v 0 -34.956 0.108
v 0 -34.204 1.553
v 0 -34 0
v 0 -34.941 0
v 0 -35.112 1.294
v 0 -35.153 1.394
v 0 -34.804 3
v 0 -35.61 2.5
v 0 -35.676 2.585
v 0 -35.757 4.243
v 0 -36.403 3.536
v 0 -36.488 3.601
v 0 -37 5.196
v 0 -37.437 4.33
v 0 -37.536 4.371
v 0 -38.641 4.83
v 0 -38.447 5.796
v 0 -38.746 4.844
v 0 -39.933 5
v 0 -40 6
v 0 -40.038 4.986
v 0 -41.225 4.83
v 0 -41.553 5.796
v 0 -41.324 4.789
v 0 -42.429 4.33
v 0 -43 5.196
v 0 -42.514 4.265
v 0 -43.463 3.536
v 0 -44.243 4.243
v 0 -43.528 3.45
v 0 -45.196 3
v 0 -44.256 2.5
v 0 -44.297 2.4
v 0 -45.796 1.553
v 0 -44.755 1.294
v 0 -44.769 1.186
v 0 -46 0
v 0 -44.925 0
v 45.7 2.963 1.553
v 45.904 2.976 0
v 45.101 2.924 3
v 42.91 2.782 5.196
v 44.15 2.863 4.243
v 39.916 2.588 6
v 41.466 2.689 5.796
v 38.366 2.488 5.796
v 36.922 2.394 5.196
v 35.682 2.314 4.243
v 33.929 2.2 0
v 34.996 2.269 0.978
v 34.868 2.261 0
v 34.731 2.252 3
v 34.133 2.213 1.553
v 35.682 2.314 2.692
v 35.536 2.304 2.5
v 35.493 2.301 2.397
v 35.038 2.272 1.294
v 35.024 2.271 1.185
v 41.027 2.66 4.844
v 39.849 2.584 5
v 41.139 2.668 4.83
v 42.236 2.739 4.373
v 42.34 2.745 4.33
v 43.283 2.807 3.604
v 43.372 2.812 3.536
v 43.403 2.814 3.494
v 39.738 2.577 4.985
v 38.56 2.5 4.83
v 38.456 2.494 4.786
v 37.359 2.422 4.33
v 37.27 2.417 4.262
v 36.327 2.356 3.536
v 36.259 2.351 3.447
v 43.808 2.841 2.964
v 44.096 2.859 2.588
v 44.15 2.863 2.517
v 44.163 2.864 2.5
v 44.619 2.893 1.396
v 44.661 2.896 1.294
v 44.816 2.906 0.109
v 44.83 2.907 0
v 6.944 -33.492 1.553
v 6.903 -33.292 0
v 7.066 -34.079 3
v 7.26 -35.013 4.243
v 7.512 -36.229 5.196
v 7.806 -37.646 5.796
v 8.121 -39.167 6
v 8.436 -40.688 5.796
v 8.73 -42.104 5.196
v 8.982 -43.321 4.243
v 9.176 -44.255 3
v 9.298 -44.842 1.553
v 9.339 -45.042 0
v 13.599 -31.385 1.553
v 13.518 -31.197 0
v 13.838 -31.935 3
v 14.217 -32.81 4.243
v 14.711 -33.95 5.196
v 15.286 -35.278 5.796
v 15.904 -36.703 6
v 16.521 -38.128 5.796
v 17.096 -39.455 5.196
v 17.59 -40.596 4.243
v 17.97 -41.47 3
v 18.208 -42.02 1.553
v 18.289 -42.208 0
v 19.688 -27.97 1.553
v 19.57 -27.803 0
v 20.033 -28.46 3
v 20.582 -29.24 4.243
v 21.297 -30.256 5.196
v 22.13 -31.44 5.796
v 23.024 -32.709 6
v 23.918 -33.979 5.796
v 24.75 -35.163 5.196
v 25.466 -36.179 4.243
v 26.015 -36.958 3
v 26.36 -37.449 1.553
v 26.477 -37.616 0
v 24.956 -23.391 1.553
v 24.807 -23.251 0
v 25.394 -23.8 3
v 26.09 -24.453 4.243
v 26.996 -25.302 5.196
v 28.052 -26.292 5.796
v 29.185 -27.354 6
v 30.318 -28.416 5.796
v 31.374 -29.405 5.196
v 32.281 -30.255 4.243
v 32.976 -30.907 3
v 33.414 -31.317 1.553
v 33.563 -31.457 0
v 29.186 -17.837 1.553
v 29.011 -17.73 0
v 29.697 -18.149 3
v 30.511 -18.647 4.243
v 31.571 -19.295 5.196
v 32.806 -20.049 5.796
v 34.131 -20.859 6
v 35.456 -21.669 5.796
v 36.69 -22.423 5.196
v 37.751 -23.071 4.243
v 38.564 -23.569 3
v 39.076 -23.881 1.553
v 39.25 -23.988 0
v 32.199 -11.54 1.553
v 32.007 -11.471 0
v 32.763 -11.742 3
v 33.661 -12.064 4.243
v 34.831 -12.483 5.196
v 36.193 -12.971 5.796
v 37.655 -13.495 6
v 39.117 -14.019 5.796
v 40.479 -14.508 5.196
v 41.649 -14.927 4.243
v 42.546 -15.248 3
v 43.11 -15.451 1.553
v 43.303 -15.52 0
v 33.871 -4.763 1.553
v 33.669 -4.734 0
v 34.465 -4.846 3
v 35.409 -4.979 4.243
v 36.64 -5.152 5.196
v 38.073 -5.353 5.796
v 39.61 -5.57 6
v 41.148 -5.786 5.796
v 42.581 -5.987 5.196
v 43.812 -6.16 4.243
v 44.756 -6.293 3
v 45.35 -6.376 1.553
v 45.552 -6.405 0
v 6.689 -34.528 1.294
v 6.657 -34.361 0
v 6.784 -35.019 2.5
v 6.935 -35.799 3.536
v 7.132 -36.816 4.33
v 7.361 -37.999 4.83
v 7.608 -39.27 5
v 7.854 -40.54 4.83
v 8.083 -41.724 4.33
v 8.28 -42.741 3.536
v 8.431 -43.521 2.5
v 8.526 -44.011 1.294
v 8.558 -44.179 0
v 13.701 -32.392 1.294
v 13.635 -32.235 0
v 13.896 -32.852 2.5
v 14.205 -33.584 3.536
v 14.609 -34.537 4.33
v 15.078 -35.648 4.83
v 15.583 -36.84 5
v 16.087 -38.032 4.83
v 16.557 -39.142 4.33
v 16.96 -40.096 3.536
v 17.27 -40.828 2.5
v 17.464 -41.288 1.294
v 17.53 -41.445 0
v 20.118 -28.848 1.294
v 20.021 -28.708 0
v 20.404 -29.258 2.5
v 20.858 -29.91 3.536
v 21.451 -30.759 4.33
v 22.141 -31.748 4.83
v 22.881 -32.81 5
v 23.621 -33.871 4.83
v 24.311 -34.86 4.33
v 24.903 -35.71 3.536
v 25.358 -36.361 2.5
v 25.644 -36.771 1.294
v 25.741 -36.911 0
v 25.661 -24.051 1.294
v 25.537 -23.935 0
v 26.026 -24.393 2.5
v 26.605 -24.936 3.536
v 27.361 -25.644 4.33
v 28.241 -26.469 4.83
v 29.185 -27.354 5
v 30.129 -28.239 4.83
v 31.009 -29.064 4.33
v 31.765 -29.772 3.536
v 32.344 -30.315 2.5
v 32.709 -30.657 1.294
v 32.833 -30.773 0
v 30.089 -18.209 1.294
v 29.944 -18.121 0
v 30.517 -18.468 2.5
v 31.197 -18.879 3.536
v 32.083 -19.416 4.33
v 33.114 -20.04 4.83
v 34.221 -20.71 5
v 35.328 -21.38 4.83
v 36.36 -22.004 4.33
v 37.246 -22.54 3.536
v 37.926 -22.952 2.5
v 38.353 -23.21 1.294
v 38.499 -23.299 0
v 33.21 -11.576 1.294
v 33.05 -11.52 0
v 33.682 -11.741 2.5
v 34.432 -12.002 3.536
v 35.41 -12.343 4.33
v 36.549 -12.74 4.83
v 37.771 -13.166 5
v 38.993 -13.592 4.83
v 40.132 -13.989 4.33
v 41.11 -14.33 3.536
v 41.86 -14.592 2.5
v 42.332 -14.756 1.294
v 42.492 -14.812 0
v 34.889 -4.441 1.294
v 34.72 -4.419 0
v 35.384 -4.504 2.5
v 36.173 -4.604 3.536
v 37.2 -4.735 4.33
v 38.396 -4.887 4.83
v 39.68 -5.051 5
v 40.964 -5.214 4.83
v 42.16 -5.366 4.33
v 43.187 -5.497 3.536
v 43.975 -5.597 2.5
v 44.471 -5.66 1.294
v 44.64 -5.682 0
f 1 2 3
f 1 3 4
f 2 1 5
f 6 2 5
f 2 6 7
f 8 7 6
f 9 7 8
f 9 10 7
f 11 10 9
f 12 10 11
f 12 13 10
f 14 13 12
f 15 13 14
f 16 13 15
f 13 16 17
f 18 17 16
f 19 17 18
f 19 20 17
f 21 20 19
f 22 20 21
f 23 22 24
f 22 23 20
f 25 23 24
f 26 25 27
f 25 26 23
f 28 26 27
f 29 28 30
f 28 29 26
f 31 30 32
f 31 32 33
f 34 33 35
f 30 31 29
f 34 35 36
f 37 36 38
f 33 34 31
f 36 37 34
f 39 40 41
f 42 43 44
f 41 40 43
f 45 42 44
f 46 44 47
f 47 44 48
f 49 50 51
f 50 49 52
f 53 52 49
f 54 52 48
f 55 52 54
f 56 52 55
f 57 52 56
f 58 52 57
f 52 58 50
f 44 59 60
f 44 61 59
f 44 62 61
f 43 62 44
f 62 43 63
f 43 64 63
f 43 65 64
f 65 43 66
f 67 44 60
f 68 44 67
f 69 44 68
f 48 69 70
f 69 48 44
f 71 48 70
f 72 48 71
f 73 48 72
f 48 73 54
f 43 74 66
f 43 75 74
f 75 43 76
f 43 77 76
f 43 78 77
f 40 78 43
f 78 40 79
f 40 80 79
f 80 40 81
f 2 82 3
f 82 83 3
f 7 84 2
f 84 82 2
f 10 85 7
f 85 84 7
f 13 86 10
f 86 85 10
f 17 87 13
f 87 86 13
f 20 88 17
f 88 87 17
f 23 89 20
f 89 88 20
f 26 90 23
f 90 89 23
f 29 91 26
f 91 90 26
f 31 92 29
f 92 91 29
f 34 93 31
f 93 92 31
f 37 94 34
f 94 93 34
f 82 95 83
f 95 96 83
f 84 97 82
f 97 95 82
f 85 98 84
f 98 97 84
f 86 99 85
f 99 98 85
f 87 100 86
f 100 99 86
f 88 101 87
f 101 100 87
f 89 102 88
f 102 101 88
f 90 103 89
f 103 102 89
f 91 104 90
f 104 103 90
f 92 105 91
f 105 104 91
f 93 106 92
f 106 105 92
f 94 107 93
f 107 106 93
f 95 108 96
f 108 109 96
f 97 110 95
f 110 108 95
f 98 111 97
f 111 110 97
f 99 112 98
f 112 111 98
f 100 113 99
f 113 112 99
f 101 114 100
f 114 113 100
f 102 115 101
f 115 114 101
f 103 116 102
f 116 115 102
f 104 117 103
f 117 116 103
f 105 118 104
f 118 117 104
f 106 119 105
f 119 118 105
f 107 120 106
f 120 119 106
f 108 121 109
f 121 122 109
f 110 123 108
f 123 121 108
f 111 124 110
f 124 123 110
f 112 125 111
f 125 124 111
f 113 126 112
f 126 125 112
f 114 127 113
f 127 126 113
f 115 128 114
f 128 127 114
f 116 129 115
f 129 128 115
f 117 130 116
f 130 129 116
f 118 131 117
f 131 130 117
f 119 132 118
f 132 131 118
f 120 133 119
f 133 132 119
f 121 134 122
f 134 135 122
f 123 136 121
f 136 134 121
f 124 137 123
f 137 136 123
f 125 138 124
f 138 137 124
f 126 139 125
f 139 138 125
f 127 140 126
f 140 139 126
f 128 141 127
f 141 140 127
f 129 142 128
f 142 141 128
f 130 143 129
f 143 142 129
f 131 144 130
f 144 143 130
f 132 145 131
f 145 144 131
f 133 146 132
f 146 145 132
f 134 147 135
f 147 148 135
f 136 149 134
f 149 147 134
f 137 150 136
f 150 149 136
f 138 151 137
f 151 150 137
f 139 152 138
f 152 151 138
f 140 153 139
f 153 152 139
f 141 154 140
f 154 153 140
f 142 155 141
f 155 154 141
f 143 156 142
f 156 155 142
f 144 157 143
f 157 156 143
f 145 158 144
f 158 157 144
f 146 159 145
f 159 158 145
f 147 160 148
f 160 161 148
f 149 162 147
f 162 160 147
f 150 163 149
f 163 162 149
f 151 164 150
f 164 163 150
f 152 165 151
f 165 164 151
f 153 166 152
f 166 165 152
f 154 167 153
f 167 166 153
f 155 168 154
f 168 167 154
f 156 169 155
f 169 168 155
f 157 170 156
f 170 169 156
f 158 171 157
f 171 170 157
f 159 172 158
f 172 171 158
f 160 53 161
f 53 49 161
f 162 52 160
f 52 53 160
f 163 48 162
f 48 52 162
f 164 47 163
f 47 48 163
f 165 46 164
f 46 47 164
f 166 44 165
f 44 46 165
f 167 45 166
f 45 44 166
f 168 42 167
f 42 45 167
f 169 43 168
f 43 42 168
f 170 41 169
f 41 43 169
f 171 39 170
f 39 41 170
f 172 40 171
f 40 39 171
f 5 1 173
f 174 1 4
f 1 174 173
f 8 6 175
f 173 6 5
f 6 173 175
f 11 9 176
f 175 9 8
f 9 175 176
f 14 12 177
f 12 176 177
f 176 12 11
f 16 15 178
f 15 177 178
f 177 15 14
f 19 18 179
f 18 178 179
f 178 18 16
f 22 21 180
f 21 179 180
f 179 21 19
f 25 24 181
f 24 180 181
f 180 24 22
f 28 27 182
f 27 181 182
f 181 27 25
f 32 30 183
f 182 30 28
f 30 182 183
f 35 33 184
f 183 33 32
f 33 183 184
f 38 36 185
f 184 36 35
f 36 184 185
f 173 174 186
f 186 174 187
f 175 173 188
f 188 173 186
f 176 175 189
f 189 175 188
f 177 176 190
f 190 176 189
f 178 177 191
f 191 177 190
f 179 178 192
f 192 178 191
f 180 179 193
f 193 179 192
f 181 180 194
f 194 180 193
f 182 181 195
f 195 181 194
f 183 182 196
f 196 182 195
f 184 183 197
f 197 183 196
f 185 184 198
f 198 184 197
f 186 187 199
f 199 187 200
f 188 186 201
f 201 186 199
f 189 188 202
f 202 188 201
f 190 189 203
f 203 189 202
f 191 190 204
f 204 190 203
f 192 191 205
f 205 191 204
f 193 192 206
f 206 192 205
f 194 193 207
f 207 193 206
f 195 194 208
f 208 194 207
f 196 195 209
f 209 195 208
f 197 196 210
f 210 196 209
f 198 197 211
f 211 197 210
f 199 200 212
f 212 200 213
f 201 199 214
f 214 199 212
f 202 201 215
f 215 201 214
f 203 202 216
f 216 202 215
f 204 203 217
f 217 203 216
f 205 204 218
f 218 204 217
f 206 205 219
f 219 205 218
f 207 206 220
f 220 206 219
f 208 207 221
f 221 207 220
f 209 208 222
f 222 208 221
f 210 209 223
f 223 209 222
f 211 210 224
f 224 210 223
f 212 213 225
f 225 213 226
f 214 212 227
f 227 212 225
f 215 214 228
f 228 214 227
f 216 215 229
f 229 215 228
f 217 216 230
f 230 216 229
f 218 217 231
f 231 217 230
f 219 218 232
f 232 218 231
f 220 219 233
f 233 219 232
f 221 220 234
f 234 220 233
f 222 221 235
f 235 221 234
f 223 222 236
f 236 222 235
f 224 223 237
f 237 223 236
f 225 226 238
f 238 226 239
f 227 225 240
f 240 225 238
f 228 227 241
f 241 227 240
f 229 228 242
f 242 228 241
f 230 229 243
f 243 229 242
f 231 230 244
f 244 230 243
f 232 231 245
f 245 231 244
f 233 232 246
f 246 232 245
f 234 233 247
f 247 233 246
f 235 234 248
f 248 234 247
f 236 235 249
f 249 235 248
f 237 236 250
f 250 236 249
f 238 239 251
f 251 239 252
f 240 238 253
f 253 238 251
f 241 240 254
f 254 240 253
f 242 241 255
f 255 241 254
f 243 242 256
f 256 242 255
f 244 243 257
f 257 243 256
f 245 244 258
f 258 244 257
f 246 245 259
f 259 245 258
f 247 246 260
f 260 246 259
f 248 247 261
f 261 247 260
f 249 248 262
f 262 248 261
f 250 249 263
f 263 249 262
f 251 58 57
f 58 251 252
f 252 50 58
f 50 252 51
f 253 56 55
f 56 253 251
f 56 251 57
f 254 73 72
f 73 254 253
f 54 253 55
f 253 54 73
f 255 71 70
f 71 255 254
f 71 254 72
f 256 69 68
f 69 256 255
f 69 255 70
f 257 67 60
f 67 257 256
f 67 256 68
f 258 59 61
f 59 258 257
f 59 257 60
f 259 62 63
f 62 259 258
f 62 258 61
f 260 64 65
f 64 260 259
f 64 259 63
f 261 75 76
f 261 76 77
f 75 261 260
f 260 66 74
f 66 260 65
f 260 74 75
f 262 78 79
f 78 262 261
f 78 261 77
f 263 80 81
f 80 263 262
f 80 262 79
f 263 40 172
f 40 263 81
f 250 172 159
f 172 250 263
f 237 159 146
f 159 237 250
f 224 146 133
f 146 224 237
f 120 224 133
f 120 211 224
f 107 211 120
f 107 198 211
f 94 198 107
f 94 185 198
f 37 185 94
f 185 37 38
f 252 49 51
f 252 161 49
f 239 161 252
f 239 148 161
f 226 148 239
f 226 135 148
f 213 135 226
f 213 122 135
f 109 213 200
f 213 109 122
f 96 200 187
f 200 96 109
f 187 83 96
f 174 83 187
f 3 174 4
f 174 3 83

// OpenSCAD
// file: ../build_environments.scad
// build_environments.scad: modules to build level sections
//

module pool(diameter=10.0, wall_height=2.0, step_width=3.0, connections=[])
{
    difference() {
        union() {
        difference() {
            cylinder(h=0.5,r1=diameter+step_width,r2=diameter+step_width,$fn=48);
            translate([0,0,-0.1])
                cylinder(h=0.7,r1=diameter,r2=diameter,$fn=48);
        }
        difference() {
            cylinder(h=wall_height,r1=diameter+step_width+1.0,r2=diameter+step_width+1.0,$fn=48);
            translate([0,0,-0.1])
                cylinder(h=wall_height+0.2,r1=diameter+step_width,r2=diameter+step_width,$fn=48);
        }
        }
    
        for (c = connections)
        {
            rotate([0,90,0]) {
                angle = atan2(c[1],c[0]);
                rotate([-angle,0,0]) {
                    cylinder(h=diameter+5.0,r1=c[2],r2=c[2],$fn=48);
                }
            }
        }
    }
}

module straight(length=10.0, width=2.0, dy1=0.0, dy2=0.0, dz=0.0)
{
    dims = [0, 0, 0, 0, 0, (dz/length)];
    matrix = [
        [ 1, dims[0], dims[1], 0 ],
        [ dims[2], 1, dims[4], 0 ],
        [ dims[5], dims[3], 1, 0 ],
        [ 0, 0, 0, 1 ]
    ];
    multmatrix(matrix)
    difference() {
        translate([dy1,0,0])
        union() {
            rotate([0,90,0]) {
                difference() {
                    cylinder(h=(length-dy1-dy2),r1=width+1.0,r2=width+1.0,$fn=24);
                    translate([0,0,-0.1])
                        cylinder(h=(length-dy1-dy2+0.2),r1=width,r2=width,$fn=24);
                }
                difference() {
                    cylinder(h=1.0,r1=width+2.0,r2=width+2.0,$fn=24);
                    translate([0,0,-0.1])
                        cylinder(h=1.2,r1=width,r2=width,$fn=24);
                }
                translate([0,0,(length-dy1-dy2)-1.0]) {
                    difference() {
                        cylinder(h=1.0,r1=width+2.0,r2=width+2.0,$fn=24);
                        translate([0,0,-0.1])
                            cylinder(h=1.2,r1=width,r2=width,$fn=24);
                    }
                }
            }
        }
        translate([0,0,-(2*width+4.0)/2])
            cube([3*length,3*length,2*width+4.0],center=true);
    }
}

module curve(p0=[0,0], center=[0,0], dir=1, angle=0.0, width=2.0)
{
    radius = sqrt((p0[0]-center[0])*(p0[0]-center[0]) + (p0[1]-center[1])*(p0[1]-center[1]));
    if (dir == 0) {
        difference() {
            rotate([0,0,-90])
            difference() {
                rotate_extrude(angle = angle, convexity = 10, $fn=32)
                    translate([radius, 0, 0])
                        circle(r = width+1.0,$fn=24);
                rotate([0,0,-1.0])
                    rotate_extrude(angle = angle+2.0, convexity = 10, $fn=32)
                        translate([radius, 0, 0])
                            circle(r = width,$fn=24);
            }
            translate([0,0,-(2*width+4.0)/2])
                cube([5*radius,5*radius,2*width+4.0],center=true);
        }
    }
    else {
        difference() {
            rotate([0,0,90])
            difference() {
                rotate_extrude(angle = -angle, convexity = 10, $fn=32)
                    translate([radius, 0, 0])
                        circle(r = width+1.0,$fn=24);
                rotate([0,0,1.0])
                    rotate_extrude(angle = -angle-2.0, convexity = 10, $fn=32)
                        translate([radius, 0, 0])
                            circle(r = width,$fn=24);
            }
            translate([0,0,-(2*width+4.0)/2])
                cube([5*radius,5*radius,2*width+4.0],center=true);
        }
    }

}

// test pool
//pool(diameter=12.0000, wall_height=3.0000, step_width=3.0000, connections=[[0.0000,-26.0000,2.0000], [23.6074,0.0000,2.0000]]);

// test straight, slope
//straight(length=26.0000, width=2.0000, dy1=11.8322, dy2=6.7082, dz=0.0000);
//straight(length=29.1549, width=12.0000, dy1=0.0000, dy2=0.0000, dz=-15.0000);

// test curve
//curve(p0=[23.6074, 0.0000], center=[23.6074, 5.0000], dir=0, angle=60.1011, width=2.0000);
//curve(p0=[33.6426, 12.4219], center=[37.9771, 9.9295], dir=1, angle=120.4627, width=2.0000);
// main file
use <../build_environments.scad>;
curve(p0=[-8.4773, -220.3786], center=[2.3067, -258.8975], dir=0, angle=93.7100, width=5.0000);
